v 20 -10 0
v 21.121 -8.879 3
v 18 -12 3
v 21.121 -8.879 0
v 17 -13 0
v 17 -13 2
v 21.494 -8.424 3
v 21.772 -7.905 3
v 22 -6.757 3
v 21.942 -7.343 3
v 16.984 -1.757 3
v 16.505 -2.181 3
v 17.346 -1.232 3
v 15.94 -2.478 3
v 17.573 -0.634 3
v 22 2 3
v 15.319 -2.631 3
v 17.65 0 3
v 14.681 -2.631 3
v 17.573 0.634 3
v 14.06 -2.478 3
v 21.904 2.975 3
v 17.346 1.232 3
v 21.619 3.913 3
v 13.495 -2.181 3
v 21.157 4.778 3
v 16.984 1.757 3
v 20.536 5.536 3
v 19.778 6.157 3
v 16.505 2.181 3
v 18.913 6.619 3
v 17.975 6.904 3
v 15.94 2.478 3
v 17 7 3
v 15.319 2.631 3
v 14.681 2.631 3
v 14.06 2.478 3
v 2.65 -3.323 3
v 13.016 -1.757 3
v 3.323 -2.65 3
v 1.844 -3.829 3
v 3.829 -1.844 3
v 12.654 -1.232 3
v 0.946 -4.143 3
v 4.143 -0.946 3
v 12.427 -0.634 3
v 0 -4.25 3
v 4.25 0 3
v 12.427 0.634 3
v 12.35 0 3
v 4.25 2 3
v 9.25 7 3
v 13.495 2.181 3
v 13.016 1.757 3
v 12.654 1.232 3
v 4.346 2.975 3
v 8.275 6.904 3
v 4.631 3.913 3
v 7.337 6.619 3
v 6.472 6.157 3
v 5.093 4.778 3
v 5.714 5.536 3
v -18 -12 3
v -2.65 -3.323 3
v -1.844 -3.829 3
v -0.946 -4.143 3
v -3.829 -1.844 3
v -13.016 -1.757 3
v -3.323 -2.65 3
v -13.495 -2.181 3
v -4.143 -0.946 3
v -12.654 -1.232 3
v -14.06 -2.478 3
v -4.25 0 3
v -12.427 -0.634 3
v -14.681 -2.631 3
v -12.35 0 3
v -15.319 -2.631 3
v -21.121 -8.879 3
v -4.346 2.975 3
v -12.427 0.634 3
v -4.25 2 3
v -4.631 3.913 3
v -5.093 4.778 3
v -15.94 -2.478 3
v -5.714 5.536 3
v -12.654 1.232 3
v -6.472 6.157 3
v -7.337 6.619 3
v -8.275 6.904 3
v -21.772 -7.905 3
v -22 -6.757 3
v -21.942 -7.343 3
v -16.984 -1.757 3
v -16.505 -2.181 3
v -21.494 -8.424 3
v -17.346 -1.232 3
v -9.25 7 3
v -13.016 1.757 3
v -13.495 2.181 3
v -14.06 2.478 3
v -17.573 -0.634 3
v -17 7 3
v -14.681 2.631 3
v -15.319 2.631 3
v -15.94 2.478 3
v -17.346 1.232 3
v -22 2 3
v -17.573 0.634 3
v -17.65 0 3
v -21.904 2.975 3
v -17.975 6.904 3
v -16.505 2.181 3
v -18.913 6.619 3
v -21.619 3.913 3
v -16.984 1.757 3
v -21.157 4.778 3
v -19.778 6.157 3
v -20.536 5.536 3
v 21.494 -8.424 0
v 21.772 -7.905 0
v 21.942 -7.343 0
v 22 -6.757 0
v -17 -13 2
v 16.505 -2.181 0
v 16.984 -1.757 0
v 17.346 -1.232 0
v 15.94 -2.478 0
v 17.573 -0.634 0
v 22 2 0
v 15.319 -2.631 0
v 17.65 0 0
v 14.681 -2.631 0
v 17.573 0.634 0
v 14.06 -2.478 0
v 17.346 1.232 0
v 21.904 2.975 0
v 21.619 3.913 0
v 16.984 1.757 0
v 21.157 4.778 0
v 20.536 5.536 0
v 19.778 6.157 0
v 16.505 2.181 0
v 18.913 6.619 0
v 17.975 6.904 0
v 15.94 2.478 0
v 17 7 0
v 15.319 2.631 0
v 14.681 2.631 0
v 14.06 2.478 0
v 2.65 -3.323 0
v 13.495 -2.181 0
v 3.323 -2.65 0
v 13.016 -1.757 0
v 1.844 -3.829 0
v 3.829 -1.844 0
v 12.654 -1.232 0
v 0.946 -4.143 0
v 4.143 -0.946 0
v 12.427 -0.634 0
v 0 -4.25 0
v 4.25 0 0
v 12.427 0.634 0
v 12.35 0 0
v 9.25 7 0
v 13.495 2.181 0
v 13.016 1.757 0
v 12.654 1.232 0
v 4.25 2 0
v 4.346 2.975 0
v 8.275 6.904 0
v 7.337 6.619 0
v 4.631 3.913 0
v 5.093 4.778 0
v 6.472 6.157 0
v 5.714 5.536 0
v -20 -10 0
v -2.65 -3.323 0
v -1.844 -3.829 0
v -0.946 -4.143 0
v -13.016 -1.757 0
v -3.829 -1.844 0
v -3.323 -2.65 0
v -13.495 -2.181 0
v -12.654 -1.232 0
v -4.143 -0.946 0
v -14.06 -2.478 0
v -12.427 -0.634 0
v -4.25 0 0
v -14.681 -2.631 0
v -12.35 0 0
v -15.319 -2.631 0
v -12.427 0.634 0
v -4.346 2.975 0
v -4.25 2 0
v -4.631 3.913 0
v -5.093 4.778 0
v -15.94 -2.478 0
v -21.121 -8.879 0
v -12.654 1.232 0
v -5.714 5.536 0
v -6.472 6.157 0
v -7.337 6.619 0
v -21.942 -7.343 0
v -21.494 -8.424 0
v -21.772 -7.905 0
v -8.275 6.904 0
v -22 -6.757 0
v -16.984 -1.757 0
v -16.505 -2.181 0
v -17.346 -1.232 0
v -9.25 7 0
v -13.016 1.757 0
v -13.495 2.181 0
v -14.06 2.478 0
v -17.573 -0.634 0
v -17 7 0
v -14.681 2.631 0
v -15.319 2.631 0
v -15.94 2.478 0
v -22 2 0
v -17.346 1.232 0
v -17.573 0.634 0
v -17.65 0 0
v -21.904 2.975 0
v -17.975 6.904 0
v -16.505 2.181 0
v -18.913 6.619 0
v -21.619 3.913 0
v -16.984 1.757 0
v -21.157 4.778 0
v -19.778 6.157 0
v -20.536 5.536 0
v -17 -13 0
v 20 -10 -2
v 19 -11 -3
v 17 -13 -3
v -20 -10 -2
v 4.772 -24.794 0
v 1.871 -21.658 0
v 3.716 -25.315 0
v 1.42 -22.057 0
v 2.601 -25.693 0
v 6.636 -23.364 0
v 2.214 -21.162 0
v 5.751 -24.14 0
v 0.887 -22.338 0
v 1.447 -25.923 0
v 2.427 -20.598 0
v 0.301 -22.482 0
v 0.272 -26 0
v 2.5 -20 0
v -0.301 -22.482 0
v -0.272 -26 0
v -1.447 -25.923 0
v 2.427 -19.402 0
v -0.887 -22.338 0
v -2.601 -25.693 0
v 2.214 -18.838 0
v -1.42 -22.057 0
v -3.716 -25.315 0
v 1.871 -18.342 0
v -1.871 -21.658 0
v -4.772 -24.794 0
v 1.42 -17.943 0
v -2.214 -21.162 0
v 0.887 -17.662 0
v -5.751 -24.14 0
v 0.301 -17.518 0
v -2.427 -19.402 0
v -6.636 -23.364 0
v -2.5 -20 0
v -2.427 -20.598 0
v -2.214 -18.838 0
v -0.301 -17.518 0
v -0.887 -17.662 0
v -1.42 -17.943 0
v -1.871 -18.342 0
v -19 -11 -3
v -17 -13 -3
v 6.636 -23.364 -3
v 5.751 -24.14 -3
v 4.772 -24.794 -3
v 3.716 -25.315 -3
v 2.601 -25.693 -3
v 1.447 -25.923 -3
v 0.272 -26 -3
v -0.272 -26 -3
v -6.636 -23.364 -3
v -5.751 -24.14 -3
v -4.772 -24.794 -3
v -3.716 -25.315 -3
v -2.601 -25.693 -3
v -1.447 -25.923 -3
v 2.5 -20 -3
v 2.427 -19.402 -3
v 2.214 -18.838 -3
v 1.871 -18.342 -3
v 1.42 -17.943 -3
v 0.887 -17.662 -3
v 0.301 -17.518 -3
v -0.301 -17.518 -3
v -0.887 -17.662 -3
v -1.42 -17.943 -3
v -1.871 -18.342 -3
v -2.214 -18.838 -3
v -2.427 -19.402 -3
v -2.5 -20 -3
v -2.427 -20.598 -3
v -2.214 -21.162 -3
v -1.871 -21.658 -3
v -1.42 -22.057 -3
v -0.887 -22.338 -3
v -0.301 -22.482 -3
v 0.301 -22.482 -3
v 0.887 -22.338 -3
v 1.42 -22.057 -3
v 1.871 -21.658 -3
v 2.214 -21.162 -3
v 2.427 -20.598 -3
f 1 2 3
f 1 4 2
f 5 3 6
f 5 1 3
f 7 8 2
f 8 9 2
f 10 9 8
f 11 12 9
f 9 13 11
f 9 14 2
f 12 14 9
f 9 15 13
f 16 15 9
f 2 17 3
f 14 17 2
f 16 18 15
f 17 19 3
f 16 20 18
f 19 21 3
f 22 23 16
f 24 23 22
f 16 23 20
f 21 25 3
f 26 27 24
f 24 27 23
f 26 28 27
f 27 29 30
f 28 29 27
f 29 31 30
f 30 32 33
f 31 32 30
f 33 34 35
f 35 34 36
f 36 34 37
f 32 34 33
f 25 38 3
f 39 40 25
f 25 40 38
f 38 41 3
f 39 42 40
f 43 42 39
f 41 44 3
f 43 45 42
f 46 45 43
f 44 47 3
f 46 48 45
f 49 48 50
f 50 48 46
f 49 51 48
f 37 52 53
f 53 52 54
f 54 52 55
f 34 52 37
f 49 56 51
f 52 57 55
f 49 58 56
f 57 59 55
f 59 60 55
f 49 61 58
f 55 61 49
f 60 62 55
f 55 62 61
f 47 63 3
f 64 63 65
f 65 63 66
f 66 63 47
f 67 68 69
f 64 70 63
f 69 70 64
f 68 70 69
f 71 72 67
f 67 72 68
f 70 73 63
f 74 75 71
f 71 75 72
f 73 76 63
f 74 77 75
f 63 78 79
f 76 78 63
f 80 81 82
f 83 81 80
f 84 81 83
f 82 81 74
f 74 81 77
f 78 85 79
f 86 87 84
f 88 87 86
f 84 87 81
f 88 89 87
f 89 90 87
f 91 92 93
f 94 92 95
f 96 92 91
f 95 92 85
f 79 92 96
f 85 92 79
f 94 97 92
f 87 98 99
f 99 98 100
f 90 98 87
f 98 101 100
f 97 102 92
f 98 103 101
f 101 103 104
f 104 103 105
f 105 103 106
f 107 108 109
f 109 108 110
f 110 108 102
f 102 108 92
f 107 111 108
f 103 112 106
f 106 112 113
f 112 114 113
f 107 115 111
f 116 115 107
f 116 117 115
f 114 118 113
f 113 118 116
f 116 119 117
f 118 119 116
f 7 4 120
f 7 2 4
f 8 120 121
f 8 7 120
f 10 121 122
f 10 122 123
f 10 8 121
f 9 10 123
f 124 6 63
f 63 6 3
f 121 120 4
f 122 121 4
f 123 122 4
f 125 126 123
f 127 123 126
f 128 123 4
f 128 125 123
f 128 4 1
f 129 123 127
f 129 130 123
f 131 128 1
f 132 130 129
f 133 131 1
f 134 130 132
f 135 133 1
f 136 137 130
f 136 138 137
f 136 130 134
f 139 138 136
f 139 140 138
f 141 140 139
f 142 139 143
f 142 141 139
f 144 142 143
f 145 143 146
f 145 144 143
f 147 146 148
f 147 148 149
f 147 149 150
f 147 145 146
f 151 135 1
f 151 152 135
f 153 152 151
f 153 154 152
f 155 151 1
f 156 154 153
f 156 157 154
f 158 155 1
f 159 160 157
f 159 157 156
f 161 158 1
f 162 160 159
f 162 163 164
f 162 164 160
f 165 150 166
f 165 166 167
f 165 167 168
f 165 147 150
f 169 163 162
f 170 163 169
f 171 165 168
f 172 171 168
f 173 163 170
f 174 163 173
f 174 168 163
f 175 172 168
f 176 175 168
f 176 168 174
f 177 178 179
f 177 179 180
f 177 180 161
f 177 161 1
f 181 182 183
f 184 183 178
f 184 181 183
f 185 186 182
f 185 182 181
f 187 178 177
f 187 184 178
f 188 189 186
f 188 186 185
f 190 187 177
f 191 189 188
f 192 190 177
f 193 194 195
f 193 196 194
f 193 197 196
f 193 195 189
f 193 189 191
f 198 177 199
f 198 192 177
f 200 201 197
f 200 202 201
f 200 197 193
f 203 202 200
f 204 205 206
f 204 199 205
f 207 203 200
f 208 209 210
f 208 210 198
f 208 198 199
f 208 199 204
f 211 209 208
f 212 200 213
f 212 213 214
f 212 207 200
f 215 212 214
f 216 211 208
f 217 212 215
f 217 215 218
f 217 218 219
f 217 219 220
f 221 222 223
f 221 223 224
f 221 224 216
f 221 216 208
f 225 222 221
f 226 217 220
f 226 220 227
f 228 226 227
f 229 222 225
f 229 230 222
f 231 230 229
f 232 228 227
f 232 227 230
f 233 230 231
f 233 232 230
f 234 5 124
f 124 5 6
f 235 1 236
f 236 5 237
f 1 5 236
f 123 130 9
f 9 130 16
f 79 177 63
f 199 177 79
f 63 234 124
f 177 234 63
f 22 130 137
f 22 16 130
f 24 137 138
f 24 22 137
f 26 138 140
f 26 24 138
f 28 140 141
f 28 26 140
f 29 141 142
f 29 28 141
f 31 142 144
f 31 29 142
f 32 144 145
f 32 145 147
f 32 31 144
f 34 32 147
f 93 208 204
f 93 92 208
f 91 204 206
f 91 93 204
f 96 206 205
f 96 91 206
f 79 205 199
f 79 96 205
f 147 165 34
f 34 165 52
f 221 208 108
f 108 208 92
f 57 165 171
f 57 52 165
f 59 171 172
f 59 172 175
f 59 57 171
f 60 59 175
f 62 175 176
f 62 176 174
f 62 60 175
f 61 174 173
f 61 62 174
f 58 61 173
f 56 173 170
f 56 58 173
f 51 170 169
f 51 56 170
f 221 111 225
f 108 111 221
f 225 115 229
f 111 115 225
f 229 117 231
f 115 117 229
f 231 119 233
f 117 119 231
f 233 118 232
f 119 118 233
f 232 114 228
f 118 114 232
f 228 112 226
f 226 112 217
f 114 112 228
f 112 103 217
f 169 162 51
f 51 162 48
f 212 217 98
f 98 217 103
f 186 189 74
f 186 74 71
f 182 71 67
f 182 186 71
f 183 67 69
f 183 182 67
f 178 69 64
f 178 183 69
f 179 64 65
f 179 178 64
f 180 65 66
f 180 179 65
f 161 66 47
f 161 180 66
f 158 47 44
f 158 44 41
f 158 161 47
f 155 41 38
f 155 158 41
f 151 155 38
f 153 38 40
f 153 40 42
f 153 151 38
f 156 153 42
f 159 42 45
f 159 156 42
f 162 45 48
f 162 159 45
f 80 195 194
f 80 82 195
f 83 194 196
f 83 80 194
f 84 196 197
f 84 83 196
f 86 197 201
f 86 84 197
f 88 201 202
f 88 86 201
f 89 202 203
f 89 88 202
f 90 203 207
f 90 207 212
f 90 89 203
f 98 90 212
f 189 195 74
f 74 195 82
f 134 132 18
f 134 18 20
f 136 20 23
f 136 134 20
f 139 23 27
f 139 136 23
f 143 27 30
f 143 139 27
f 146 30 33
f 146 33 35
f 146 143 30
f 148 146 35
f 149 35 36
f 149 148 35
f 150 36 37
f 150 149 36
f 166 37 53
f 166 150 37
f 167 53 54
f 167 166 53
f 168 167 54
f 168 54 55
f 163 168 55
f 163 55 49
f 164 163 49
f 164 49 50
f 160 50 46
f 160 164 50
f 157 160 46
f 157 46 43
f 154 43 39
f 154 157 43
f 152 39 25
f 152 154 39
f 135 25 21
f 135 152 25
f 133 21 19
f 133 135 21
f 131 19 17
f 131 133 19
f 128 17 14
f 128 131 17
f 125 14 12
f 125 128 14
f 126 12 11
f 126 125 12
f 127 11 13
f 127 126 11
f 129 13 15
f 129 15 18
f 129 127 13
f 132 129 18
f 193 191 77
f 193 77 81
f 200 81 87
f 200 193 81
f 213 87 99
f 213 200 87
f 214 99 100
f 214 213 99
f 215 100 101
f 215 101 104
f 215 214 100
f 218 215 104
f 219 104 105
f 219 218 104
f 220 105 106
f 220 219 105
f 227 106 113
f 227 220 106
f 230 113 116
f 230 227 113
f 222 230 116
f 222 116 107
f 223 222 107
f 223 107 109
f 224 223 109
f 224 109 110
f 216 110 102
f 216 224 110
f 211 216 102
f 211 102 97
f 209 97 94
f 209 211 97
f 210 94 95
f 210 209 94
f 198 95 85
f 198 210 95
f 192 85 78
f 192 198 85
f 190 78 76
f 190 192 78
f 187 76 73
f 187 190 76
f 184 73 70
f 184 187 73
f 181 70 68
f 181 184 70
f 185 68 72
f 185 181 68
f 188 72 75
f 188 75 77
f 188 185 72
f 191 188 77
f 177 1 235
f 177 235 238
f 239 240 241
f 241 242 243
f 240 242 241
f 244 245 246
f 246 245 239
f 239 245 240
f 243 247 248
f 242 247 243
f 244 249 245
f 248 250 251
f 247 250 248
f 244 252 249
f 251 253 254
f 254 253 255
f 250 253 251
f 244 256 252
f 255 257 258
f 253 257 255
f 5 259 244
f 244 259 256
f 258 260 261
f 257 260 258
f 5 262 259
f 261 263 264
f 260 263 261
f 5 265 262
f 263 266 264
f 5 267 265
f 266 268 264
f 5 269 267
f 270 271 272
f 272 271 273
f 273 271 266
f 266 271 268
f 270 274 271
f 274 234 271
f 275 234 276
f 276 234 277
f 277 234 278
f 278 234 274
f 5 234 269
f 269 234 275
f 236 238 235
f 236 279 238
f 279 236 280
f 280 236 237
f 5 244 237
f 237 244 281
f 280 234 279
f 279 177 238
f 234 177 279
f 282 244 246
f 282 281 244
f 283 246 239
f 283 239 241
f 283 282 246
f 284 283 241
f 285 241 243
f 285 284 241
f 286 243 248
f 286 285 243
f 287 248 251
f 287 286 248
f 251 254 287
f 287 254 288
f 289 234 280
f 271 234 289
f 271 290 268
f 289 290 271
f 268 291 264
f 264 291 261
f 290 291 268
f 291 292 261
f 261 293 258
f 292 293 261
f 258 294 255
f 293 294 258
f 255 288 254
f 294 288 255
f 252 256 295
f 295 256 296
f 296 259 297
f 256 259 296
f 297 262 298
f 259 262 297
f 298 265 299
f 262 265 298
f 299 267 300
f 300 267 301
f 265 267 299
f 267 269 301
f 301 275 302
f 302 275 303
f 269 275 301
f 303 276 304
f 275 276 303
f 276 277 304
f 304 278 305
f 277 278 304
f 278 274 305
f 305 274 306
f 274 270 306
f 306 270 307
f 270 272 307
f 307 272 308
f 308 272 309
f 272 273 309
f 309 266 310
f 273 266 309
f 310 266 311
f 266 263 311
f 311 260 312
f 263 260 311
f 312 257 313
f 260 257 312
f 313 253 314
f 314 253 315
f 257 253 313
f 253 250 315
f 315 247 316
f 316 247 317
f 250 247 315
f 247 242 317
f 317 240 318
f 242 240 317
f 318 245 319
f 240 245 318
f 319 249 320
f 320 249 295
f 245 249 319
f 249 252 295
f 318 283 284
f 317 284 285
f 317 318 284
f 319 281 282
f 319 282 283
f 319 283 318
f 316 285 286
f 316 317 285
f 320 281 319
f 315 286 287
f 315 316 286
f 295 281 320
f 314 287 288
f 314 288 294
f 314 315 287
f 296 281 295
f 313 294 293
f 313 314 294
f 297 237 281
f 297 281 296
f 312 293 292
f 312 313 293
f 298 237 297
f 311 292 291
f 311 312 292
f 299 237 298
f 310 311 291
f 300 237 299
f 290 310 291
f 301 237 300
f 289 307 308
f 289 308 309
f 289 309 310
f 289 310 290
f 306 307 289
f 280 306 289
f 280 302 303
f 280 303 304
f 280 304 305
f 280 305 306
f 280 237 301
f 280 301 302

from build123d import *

# Parameters (mm, degrees)
SKETCH_R        = 2.65
PAD_DEPTH       = 3
PAD001_DEPTH    = 3
SKETCH002_R     = 2.5
PAD002_DEPTH    = 3
FILLET_R        = 9
FILLET001_R     = 5
FILLET002_R     = 5
CHAMFER_SIZE    = 1
CHAMFER001_SIZE = 1
FILLET003_R     = 3


with BuildPart() as part:
    # Sketch → Pad (new body)
    with BuildSketch(Plane.XY):
        with BuildLine():
            ThreePointArc((-4.25, 0), (0, -4.25), (4.25, 0))
            Line((4.25, 7), (4.25, 0))
            Line((22, 7), (4.25, 7))
            Line((22, -8), (22, 7))
            Line((22, -8), (17, -13))
            Line((-17, -13), (17, -13))
            Line((-22, -8), (-17, -13))
            Line((-22, 7), (-22, -8))
            Line((-4.25, 7), (-22, 7))
            Line((-4.25, 0), (-4.25, 7))
        make_face()
        with Locations((-15, 0)):
            Circle(SKETCH_R, mode=Mode.SUBTRACT)
        with Locations((15, 0)):
            Circle(SKETCH_R, mode=Mode.SUBTRACT)
    extrude(amount=PAD_DEPTH)

    # Sketch001 → Pad001 (join)
    with BuildSketch(Plane.XY):
        Polygon((-17, -13), (17, -13), (20, -10), (-20, -10), align=None)
    extrude(amount=-PAD001_DEPTH)

    # Sketch002 → Pad002 (join)
    with BuildSketch(Plane.XY):
        Polygon((-17, -13), (17, -13), (4, -26), (-4, -26), align=None)
        with Locations((0, -20)):
            Circle(SKETCH002_R, mode=Mode.SUBTRACT)
    extrude(amount=-PAD002_DEPTH)

    # Fillet
    fillet_edges = [part.edges().sort_by_distance(p)[0] for p in [
        (4, -26, -1.5),
        (-4, -26, -1.5),
    ]]
    fillet(fillet_edges, radius=FILLET_R)

    # Fillet001
    fillet001_edges = [part.edges().sort_by_distance(p)[0] for p in [
        (22, 7, 1.5),
        (-22, 7, 1.5),
    ]]
    fillet(fillet001_edges, radius=FILLET001_R)

    # Fillet002
    fillet002_edges = [part.edges().sort_by_distance(p)[0] for p in [
        (-4.25, 7, 1.5),
        (4.25, 7, 1.5),
    ]]
    fillet(fillet002_edges, radius=FILLET002_R)

    # Chamfer
    chamfer_edges = [part.edges().sort_by_distance(p)[0] for p in [
        (0, -13, 3),
    ]]
    chamfer(chamfer_edges, length=CHAMFER_SIZE)

    # Chamfer001
    chamfer001_edges = [part.edges().sort_by_distance(p)[0] for p in [
        (0, -10, -3),
    ]]
    chamfer(chamfer001_edges, length=CHAMFER001_SIZE)

    # Fillet003
    fillet003_edges = [part.edges().sort_by_distance(p)[0] for p in [
        (22, -8, 1.5),
        (-22, -8, 1.5),
    ]]
    fillet(fillet003_edges, radius=FILLET003_R)


solid = part.part
